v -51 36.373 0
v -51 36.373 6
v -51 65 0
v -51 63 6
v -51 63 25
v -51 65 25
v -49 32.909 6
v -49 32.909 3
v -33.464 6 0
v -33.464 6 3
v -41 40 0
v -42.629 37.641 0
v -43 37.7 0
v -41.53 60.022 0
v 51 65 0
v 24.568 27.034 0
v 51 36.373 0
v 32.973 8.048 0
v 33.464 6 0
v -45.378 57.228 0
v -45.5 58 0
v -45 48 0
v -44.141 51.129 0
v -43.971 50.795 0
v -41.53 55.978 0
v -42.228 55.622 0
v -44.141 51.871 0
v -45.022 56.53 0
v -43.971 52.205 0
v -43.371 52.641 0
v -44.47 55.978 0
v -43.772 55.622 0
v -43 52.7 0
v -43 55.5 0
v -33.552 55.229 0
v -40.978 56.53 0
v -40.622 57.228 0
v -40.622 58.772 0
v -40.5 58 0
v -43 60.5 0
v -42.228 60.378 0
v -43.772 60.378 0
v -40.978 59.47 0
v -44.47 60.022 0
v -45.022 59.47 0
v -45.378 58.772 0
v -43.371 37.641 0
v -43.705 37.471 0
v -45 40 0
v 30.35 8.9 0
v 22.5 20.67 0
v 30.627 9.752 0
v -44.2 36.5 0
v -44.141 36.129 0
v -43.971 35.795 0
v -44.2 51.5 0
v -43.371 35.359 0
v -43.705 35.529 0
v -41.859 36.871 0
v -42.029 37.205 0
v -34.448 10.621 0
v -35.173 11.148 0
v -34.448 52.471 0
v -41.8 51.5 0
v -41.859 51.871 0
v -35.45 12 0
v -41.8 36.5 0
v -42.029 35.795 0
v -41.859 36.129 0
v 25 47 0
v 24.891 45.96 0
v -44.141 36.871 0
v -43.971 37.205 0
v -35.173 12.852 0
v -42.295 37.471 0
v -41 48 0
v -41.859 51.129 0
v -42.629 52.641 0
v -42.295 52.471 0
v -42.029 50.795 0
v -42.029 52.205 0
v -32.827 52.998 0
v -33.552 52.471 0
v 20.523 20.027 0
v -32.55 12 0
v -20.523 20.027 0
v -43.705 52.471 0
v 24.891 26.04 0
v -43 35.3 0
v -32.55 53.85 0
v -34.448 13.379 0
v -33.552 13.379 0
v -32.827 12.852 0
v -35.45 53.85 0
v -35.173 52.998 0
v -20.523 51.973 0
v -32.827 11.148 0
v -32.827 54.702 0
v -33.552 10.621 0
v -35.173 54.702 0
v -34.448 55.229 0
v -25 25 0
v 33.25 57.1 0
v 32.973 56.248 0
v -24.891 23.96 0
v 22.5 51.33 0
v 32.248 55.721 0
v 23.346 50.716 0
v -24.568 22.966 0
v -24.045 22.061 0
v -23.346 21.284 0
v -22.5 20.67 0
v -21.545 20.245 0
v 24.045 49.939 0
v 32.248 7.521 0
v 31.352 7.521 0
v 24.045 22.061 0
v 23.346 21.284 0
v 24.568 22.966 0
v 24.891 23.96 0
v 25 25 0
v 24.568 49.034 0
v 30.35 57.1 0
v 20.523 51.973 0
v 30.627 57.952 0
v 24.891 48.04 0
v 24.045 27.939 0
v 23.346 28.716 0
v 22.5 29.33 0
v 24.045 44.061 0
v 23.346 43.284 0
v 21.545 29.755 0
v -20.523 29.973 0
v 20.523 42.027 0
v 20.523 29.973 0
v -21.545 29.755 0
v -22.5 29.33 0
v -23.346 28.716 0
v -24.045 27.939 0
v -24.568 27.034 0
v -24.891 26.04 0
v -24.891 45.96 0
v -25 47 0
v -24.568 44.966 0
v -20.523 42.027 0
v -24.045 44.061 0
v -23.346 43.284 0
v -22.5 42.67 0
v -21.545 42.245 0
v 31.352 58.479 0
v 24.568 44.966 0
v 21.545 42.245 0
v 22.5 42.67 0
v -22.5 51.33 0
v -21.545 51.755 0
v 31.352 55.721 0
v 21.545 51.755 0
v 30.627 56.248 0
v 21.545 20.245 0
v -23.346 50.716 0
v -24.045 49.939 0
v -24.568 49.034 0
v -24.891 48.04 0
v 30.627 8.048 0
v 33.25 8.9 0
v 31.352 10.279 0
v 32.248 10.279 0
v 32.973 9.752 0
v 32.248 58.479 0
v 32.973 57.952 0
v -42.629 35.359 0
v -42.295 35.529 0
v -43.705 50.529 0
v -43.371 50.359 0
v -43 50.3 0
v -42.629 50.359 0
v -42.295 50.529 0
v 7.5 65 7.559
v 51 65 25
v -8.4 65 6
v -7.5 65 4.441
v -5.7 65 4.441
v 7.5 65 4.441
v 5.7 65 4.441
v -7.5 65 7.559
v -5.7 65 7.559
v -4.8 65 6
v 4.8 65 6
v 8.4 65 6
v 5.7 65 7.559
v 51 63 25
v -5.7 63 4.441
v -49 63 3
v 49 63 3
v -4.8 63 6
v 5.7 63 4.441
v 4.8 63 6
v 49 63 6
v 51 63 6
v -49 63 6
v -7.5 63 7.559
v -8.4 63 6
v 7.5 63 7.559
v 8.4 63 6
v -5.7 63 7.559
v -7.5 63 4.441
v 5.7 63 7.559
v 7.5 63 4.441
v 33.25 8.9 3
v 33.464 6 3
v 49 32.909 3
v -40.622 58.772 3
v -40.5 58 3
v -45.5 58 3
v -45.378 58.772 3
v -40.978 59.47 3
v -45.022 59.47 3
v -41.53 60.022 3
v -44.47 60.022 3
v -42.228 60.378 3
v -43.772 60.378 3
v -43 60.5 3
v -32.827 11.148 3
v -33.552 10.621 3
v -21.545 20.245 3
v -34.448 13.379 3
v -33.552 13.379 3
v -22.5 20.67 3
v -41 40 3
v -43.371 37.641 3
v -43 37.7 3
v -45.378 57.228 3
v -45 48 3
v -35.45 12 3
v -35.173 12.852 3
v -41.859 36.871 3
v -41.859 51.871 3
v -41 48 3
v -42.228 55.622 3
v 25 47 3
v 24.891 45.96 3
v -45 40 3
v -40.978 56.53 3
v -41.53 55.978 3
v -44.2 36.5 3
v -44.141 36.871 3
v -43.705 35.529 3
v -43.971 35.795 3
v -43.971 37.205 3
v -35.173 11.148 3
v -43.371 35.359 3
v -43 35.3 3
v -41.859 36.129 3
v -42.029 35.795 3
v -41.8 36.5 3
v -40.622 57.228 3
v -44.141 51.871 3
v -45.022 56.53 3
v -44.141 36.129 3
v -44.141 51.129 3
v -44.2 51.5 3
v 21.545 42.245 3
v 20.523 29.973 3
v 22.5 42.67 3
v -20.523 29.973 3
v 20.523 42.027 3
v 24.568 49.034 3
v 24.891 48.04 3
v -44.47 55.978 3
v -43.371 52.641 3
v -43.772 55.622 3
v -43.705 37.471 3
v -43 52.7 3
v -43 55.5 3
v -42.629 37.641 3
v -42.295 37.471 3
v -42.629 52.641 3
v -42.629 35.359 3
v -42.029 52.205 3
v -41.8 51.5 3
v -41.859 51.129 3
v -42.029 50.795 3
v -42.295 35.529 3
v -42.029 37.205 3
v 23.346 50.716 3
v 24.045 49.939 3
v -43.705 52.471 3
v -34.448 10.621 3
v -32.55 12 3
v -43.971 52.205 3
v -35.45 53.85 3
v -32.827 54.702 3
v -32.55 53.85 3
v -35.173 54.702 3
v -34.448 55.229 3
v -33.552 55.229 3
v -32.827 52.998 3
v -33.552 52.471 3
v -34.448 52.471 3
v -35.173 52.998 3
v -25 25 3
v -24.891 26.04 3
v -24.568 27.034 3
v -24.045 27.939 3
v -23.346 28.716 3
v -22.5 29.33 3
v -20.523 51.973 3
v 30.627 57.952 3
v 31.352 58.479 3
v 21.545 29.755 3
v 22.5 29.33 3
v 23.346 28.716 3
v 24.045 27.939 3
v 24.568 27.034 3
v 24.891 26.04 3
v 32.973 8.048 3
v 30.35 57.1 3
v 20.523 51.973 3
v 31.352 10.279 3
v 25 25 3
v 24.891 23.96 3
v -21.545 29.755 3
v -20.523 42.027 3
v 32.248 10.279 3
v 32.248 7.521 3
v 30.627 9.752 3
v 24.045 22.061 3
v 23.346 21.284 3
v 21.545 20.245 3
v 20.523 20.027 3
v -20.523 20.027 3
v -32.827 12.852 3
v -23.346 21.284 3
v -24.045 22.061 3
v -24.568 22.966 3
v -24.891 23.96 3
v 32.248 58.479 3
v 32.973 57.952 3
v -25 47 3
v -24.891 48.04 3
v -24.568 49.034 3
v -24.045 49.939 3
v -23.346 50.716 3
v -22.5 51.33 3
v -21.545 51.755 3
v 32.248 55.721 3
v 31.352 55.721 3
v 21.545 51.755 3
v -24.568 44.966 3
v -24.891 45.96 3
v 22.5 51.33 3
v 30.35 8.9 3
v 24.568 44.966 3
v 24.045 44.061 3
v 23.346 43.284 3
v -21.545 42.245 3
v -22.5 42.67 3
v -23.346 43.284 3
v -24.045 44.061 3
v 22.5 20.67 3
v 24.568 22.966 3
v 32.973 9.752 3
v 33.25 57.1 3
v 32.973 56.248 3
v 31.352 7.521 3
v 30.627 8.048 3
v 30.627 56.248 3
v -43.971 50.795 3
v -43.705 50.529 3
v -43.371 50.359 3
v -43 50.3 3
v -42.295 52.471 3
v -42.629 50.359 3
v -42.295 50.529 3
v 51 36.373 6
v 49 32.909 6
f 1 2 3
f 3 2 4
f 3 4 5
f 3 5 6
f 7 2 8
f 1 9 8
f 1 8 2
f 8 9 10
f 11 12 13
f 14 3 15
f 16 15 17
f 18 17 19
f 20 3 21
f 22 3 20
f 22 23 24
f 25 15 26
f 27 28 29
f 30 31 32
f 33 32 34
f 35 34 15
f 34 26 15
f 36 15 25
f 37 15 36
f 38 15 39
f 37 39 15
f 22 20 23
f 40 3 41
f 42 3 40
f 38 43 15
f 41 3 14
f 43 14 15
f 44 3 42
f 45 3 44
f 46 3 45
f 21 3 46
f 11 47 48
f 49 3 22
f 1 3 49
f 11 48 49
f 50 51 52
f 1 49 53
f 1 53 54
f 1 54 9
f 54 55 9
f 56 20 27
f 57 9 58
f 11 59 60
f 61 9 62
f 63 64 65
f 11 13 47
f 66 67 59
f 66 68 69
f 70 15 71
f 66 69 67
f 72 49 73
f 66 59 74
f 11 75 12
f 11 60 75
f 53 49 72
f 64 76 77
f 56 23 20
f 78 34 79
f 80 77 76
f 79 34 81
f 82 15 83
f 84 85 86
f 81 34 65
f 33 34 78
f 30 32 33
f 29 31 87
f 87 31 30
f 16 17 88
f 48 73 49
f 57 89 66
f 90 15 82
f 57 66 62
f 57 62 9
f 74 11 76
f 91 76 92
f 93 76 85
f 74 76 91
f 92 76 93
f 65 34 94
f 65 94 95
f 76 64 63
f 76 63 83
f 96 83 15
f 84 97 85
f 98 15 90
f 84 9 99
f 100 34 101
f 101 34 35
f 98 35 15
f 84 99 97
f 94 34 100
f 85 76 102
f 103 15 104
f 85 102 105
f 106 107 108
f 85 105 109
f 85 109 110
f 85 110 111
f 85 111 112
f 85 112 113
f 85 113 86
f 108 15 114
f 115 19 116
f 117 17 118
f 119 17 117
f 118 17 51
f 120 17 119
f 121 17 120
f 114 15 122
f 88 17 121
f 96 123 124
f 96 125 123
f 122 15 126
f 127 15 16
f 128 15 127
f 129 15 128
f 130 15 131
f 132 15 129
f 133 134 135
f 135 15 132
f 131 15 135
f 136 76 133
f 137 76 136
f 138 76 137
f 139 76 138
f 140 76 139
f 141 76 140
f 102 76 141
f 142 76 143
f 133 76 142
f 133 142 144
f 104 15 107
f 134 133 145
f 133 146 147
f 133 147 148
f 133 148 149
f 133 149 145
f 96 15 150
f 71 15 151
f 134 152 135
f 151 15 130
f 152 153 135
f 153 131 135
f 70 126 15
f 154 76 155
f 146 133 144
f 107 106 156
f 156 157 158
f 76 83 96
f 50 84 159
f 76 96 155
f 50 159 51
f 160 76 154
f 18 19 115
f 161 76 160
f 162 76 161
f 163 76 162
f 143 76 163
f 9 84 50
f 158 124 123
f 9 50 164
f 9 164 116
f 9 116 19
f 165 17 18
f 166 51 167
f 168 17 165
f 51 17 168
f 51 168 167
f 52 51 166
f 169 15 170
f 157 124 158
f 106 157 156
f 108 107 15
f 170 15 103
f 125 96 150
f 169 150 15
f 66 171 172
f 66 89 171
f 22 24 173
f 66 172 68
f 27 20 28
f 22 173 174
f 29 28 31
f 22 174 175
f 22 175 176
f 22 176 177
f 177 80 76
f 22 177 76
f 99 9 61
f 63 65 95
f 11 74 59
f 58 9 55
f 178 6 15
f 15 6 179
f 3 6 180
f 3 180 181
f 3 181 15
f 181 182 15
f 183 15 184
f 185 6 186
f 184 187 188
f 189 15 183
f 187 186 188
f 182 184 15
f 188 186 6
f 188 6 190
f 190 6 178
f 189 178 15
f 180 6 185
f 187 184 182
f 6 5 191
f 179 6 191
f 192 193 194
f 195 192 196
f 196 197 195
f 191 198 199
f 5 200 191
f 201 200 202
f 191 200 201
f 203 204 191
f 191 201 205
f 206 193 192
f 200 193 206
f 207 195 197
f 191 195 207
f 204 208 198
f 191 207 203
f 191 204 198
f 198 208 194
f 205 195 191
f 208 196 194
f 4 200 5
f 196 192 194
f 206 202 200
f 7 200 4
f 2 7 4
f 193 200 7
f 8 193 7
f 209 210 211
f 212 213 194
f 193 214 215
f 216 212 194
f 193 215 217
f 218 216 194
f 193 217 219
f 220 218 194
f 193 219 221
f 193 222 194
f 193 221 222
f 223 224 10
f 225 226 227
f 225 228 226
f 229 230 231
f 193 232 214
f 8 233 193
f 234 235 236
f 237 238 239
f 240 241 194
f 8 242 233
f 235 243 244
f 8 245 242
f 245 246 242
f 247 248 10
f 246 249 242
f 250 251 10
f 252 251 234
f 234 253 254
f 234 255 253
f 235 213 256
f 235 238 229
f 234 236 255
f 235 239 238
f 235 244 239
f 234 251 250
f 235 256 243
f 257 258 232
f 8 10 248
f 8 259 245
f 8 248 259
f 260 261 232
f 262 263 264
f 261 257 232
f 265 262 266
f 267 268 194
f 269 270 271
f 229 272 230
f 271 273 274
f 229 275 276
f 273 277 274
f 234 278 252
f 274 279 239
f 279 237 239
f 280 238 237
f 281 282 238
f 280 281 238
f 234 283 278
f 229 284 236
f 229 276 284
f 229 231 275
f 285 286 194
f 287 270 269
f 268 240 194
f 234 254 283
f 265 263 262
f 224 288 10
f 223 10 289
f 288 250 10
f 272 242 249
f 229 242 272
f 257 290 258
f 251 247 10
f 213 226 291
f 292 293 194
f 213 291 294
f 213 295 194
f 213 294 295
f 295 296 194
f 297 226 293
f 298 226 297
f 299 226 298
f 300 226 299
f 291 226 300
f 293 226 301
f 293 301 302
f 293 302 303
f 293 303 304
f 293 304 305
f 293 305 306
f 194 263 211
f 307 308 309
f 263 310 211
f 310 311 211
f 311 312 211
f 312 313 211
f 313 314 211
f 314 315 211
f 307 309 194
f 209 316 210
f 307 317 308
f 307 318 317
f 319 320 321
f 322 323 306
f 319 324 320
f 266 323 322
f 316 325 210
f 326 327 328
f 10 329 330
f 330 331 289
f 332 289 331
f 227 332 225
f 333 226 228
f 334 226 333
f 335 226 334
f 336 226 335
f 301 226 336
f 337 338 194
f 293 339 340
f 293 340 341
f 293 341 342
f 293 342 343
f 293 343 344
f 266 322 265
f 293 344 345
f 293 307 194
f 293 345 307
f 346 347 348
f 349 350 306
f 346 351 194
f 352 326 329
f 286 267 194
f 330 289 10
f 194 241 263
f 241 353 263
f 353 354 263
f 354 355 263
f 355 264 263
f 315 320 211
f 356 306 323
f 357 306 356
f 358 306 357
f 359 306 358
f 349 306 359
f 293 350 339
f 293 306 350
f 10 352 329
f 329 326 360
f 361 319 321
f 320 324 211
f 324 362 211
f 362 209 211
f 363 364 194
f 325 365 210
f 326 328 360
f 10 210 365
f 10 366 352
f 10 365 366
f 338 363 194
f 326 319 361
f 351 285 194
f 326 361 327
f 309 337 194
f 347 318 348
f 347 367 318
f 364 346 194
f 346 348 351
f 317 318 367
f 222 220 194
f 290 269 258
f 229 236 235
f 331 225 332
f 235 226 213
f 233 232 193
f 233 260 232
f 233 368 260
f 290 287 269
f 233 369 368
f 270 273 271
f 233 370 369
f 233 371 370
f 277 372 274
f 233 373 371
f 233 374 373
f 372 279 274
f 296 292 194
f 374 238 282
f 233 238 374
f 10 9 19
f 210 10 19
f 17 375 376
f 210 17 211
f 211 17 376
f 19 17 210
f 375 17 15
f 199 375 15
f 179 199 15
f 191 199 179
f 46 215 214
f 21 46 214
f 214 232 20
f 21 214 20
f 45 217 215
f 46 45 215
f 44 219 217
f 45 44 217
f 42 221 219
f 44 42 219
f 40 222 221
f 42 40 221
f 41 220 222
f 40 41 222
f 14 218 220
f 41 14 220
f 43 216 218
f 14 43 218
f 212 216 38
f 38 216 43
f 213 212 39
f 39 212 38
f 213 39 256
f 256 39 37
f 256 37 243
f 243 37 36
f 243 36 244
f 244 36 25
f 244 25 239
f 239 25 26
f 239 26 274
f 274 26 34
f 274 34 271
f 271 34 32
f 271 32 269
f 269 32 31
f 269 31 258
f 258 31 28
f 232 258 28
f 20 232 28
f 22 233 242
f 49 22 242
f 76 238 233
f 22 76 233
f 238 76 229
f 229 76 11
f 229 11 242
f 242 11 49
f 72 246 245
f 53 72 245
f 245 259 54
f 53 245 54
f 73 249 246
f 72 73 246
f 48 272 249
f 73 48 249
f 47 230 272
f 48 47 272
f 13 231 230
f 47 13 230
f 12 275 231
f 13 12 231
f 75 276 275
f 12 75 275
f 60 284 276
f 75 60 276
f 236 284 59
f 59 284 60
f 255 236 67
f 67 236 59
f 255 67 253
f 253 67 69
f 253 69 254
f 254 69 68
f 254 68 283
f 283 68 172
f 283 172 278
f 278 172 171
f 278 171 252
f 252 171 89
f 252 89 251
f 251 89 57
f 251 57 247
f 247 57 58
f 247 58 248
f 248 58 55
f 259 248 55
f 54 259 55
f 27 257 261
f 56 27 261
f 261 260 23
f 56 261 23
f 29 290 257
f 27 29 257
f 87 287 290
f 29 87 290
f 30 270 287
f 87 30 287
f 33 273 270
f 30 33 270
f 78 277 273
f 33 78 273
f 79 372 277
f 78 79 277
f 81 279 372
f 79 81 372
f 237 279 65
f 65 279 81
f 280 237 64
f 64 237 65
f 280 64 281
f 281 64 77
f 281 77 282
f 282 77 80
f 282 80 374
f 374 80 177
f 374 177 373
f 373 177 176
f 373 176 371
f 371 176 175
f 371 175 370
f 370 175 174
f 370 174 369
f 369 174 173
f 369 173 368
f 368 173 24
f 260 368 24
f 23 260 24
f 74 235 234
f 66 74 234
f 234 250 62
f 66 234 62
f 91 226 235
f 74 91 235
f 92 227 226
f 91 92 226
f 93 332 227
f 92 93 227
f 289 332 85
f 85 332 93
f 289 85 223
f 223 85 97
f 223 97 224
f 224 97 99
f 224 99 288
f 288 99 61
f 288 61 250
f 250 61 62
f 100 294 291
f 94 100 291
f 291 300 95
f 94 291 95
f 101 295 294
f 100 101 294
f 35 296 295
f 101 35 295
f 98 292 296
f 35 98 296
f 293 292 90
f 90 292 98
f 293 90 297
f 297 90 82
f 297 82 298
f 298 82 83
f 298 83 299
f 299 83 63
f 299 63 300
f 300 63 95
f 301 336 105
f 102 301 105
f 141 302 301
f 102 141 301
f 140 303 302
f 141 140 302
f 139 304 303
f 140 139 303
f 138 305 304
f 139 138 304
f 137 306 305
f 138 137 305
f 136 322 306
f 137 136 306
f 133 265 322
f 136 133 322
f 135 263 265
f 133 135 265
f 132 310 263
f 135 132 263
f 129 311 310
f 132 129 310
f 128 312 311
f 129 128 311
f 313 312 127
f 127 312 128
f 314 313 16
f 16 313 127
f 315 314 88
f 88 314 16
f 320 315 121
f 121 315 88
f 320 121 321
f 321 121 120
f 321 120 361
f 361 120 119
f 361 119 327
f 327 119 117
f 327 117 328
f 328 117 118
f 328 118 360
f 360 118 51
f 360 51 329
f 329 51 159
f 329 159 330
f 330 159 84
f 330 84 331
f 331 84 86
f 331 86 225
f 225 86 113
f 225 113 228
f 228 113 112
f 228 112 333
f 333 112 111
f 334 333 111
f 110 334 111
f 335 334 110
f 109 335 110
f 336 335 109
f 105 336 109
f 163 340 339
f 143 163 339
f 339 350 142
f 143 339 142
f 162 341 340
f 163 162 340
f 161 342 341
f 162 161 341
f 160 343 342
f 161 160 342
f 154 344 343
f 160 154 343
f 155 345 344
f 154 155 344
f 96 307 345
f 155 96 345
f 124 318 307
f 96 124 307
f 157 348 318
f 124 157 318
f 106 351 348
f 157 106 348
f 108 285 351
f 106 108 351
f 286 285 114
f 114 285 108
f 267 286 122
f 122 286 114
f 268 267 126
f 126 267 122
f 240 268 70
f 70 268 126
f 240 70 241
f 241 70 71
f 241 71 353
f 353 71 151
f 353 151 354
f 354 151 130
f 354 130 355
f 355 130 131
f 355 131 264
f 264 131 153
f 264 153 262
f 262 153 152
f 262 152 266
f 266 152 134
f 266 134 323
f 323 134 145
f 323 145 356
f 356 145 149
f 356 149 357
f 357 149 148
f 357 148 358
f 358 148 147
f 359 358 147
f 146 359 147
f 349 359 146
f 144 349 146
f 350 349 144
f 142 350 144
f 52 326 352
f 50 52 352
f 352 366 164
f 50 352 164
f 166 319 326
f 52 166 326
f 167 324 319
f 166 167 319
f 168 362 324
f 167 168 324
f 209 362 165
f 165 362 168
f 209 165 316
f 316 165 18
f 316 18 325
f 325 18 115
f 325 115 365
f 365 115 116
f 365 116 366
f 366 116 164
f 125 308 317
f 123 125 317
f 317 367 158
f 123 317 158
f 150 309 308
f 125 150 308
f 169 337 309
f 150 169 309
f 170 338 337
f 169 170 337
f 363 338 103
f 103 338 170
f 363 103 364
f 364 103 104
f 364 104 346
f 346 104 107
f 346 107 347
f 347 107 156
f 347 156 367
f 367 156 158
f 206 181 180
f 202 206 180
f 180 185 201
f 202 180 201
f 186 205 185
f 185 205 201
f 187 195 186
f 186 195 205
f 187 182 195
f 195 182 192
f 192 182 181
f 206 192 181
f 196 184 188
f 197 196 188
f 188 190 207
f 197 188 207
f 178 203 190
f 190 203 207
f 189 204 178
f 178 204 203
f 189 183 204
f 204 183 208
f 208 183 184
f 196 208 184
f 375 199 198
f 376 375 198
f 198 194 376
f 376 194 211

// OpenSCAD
// file: raid3r/raid3r.scad
/*Pequeña biblioteca con las funciones mas comunes*/

module agujereado(X,Y,H){
	union(){
		for(j=[0:X-1])
		{
			translate([0,j*8,0])
			{
				for(i=[0:Y-1])
				{
					translate([i*6,0,-1])cylinder(r=1.2, h=H, $fn=10);
				}
			}
		}
	}
}

module dynahole(H){
	translate([-45.5/2,-10,1])union(){
		translate([3.5+6,16,0])agujereado(4,1,H);
		translate([9.5+26.5,16,0])agujereado(4,1,H);
		translate([45.5/2,10,-1])cylinder(r=11.5,h=H);	
		translate([(45.5-20)/2,6.5,-1])cube([20,36,H]);
		translate([22.5,46,0])union(){
			translate([7,0,-1])cylinder(r=1.5, h=H, $fn=10);
			translate([-7,0,-1])cylinder(r=1.5, h=H, $fn=10);
		}
	}
}

module cruz(H){
	translate([-34,-13,3])union(){
		translate([34,13,-3]) cylinder(r=4,h=H);
		translate([42,13,-3]) cylinder(r=1.5,h=H);
		translate([26,13,-3]) cylinder(r=1.5,h=H);
		translate([34,21,-3]) cylinder(r=1.5,h=H);
		translate([34,5,-3]) cylinder(r=1.5,h=H);
	}
}

module miniservo(H){
	translate([-15,-7,0])union(){
		translate([15,7,0])rotate([0,0,0])cylinder(r=8,h=H);
		translate([-1.75,7,0])union(){
			cylinder(r=1.5, h=H,$fn=20);
			translate([27.5,0,0])cylinder(r=1.5, h=H,$fn=20);
		}
	}
}

module beagleboneHoles(z){
union(){
	translate([0,0,-1])cylinder(r=2,h=z, $fn=8);
	translate([0,46.5,-1])cylinder(r=2,h=z, $fn=8);
	translate([64.5+1.5,2.5,-1])cylinder(r=2,h=z, $fn=8);
	translate([64.5+1.5,44,-1])cylinder(r=2,h=z, $fn=8);
	translate([0,0,-1])cylinder(r=3,h=3, $fn=8);
	translate([0,46.5,-1])cylinder(r=3,h=3, $fn=8);
	translate([64.5+1.5,2.5,-1])cylinder(r=3,h=3, $fn=8);
	translate([64.5+1.5,44,-1])cylinder(r=3,h=3, $fn=8);
	}
}
// main file
use <raid3r/raid3r.scad>


module screw(d){
translate([0,0,-5])rotate([0,0,0])union(){
//cylinder(r=5.3/2, h=6, $fn=10);
cylinder(r=2.9/2, h=6+d, $fn=10);
}
}



module bbbholes(z){
union(){
translate([0,0,0])screw(30);
translate([0,41.85,0])screw(30);

translate([0,-3.1,0]){
translate([65.8,0,0])screw(30);
translate([65.8,48.2,0])screw(30);
}

}

}

module interruptor(){
translate([0,14,-10])cylinder(r=2.5,h=20,$fn=20);
translate([0,7.5,-10])cylinder(r=1.2,h=20,$fn=20);
translate([0,-7.5,-10])cylinder(r=1.2,h=20,$fn=20);
cube([4,8,20], center=true);

}



difference(){
union(){

	difference(){
translate([-51,6,0])cube([102,59,25]);
		translate([-49,4,3])cube([98,59,30]);
		translate([-60,4,6])cube([120,59,30]);
}


	


}
		translate([-43,44,0])interruptor();
		cylinder(r=4,h=20,$fn=20)

		translate([-10-51,-12,-5])rotate([0,0,-20])cube([20,20,80]);
		mirror([1,0,0])translate([-10-51,-12,-5])rotate([0,0,-20])cube([20,20,80]);
		translate([-15-19,12,0])bbbholes(6);


hull(){
translate([-20,25,-5])cylinder(r=5,h=20,$fn=30);
translate([20,25,-5])cylinder(r=5,h=20,$fn=30);
}
hull(){
translate([-20,47,-5])cylinder(r=5,h=20,$fn=30);
translate([20,47,-5])cylinder(r=5,h=20,$fn=30);
}

//		hull(){
//			translate([45,56,-10])cylinder(r=3,h=20);
//			translate([39,56,-10])cylinder(r=3,h=20);
//			translate([45,43,-10])cylinder(r=3,h=20);
//			translate([36,43,-10])cylinder(r=3,h=20);
//		}
		
		translate([13.2/2,0,6])rotate([-90,0,0])cylinder(r=1.8,h=200);
		translate([-13.2/2,0,6])rotate([-90,0,0])cylinder(r=1.8,h=200);
		mirror([1,0,0])translate([30,0,-1])rotate([0,0,-30])cube(50);
		translate([30,0,-1])rotate([0,0,-30])cube(50);


	}
